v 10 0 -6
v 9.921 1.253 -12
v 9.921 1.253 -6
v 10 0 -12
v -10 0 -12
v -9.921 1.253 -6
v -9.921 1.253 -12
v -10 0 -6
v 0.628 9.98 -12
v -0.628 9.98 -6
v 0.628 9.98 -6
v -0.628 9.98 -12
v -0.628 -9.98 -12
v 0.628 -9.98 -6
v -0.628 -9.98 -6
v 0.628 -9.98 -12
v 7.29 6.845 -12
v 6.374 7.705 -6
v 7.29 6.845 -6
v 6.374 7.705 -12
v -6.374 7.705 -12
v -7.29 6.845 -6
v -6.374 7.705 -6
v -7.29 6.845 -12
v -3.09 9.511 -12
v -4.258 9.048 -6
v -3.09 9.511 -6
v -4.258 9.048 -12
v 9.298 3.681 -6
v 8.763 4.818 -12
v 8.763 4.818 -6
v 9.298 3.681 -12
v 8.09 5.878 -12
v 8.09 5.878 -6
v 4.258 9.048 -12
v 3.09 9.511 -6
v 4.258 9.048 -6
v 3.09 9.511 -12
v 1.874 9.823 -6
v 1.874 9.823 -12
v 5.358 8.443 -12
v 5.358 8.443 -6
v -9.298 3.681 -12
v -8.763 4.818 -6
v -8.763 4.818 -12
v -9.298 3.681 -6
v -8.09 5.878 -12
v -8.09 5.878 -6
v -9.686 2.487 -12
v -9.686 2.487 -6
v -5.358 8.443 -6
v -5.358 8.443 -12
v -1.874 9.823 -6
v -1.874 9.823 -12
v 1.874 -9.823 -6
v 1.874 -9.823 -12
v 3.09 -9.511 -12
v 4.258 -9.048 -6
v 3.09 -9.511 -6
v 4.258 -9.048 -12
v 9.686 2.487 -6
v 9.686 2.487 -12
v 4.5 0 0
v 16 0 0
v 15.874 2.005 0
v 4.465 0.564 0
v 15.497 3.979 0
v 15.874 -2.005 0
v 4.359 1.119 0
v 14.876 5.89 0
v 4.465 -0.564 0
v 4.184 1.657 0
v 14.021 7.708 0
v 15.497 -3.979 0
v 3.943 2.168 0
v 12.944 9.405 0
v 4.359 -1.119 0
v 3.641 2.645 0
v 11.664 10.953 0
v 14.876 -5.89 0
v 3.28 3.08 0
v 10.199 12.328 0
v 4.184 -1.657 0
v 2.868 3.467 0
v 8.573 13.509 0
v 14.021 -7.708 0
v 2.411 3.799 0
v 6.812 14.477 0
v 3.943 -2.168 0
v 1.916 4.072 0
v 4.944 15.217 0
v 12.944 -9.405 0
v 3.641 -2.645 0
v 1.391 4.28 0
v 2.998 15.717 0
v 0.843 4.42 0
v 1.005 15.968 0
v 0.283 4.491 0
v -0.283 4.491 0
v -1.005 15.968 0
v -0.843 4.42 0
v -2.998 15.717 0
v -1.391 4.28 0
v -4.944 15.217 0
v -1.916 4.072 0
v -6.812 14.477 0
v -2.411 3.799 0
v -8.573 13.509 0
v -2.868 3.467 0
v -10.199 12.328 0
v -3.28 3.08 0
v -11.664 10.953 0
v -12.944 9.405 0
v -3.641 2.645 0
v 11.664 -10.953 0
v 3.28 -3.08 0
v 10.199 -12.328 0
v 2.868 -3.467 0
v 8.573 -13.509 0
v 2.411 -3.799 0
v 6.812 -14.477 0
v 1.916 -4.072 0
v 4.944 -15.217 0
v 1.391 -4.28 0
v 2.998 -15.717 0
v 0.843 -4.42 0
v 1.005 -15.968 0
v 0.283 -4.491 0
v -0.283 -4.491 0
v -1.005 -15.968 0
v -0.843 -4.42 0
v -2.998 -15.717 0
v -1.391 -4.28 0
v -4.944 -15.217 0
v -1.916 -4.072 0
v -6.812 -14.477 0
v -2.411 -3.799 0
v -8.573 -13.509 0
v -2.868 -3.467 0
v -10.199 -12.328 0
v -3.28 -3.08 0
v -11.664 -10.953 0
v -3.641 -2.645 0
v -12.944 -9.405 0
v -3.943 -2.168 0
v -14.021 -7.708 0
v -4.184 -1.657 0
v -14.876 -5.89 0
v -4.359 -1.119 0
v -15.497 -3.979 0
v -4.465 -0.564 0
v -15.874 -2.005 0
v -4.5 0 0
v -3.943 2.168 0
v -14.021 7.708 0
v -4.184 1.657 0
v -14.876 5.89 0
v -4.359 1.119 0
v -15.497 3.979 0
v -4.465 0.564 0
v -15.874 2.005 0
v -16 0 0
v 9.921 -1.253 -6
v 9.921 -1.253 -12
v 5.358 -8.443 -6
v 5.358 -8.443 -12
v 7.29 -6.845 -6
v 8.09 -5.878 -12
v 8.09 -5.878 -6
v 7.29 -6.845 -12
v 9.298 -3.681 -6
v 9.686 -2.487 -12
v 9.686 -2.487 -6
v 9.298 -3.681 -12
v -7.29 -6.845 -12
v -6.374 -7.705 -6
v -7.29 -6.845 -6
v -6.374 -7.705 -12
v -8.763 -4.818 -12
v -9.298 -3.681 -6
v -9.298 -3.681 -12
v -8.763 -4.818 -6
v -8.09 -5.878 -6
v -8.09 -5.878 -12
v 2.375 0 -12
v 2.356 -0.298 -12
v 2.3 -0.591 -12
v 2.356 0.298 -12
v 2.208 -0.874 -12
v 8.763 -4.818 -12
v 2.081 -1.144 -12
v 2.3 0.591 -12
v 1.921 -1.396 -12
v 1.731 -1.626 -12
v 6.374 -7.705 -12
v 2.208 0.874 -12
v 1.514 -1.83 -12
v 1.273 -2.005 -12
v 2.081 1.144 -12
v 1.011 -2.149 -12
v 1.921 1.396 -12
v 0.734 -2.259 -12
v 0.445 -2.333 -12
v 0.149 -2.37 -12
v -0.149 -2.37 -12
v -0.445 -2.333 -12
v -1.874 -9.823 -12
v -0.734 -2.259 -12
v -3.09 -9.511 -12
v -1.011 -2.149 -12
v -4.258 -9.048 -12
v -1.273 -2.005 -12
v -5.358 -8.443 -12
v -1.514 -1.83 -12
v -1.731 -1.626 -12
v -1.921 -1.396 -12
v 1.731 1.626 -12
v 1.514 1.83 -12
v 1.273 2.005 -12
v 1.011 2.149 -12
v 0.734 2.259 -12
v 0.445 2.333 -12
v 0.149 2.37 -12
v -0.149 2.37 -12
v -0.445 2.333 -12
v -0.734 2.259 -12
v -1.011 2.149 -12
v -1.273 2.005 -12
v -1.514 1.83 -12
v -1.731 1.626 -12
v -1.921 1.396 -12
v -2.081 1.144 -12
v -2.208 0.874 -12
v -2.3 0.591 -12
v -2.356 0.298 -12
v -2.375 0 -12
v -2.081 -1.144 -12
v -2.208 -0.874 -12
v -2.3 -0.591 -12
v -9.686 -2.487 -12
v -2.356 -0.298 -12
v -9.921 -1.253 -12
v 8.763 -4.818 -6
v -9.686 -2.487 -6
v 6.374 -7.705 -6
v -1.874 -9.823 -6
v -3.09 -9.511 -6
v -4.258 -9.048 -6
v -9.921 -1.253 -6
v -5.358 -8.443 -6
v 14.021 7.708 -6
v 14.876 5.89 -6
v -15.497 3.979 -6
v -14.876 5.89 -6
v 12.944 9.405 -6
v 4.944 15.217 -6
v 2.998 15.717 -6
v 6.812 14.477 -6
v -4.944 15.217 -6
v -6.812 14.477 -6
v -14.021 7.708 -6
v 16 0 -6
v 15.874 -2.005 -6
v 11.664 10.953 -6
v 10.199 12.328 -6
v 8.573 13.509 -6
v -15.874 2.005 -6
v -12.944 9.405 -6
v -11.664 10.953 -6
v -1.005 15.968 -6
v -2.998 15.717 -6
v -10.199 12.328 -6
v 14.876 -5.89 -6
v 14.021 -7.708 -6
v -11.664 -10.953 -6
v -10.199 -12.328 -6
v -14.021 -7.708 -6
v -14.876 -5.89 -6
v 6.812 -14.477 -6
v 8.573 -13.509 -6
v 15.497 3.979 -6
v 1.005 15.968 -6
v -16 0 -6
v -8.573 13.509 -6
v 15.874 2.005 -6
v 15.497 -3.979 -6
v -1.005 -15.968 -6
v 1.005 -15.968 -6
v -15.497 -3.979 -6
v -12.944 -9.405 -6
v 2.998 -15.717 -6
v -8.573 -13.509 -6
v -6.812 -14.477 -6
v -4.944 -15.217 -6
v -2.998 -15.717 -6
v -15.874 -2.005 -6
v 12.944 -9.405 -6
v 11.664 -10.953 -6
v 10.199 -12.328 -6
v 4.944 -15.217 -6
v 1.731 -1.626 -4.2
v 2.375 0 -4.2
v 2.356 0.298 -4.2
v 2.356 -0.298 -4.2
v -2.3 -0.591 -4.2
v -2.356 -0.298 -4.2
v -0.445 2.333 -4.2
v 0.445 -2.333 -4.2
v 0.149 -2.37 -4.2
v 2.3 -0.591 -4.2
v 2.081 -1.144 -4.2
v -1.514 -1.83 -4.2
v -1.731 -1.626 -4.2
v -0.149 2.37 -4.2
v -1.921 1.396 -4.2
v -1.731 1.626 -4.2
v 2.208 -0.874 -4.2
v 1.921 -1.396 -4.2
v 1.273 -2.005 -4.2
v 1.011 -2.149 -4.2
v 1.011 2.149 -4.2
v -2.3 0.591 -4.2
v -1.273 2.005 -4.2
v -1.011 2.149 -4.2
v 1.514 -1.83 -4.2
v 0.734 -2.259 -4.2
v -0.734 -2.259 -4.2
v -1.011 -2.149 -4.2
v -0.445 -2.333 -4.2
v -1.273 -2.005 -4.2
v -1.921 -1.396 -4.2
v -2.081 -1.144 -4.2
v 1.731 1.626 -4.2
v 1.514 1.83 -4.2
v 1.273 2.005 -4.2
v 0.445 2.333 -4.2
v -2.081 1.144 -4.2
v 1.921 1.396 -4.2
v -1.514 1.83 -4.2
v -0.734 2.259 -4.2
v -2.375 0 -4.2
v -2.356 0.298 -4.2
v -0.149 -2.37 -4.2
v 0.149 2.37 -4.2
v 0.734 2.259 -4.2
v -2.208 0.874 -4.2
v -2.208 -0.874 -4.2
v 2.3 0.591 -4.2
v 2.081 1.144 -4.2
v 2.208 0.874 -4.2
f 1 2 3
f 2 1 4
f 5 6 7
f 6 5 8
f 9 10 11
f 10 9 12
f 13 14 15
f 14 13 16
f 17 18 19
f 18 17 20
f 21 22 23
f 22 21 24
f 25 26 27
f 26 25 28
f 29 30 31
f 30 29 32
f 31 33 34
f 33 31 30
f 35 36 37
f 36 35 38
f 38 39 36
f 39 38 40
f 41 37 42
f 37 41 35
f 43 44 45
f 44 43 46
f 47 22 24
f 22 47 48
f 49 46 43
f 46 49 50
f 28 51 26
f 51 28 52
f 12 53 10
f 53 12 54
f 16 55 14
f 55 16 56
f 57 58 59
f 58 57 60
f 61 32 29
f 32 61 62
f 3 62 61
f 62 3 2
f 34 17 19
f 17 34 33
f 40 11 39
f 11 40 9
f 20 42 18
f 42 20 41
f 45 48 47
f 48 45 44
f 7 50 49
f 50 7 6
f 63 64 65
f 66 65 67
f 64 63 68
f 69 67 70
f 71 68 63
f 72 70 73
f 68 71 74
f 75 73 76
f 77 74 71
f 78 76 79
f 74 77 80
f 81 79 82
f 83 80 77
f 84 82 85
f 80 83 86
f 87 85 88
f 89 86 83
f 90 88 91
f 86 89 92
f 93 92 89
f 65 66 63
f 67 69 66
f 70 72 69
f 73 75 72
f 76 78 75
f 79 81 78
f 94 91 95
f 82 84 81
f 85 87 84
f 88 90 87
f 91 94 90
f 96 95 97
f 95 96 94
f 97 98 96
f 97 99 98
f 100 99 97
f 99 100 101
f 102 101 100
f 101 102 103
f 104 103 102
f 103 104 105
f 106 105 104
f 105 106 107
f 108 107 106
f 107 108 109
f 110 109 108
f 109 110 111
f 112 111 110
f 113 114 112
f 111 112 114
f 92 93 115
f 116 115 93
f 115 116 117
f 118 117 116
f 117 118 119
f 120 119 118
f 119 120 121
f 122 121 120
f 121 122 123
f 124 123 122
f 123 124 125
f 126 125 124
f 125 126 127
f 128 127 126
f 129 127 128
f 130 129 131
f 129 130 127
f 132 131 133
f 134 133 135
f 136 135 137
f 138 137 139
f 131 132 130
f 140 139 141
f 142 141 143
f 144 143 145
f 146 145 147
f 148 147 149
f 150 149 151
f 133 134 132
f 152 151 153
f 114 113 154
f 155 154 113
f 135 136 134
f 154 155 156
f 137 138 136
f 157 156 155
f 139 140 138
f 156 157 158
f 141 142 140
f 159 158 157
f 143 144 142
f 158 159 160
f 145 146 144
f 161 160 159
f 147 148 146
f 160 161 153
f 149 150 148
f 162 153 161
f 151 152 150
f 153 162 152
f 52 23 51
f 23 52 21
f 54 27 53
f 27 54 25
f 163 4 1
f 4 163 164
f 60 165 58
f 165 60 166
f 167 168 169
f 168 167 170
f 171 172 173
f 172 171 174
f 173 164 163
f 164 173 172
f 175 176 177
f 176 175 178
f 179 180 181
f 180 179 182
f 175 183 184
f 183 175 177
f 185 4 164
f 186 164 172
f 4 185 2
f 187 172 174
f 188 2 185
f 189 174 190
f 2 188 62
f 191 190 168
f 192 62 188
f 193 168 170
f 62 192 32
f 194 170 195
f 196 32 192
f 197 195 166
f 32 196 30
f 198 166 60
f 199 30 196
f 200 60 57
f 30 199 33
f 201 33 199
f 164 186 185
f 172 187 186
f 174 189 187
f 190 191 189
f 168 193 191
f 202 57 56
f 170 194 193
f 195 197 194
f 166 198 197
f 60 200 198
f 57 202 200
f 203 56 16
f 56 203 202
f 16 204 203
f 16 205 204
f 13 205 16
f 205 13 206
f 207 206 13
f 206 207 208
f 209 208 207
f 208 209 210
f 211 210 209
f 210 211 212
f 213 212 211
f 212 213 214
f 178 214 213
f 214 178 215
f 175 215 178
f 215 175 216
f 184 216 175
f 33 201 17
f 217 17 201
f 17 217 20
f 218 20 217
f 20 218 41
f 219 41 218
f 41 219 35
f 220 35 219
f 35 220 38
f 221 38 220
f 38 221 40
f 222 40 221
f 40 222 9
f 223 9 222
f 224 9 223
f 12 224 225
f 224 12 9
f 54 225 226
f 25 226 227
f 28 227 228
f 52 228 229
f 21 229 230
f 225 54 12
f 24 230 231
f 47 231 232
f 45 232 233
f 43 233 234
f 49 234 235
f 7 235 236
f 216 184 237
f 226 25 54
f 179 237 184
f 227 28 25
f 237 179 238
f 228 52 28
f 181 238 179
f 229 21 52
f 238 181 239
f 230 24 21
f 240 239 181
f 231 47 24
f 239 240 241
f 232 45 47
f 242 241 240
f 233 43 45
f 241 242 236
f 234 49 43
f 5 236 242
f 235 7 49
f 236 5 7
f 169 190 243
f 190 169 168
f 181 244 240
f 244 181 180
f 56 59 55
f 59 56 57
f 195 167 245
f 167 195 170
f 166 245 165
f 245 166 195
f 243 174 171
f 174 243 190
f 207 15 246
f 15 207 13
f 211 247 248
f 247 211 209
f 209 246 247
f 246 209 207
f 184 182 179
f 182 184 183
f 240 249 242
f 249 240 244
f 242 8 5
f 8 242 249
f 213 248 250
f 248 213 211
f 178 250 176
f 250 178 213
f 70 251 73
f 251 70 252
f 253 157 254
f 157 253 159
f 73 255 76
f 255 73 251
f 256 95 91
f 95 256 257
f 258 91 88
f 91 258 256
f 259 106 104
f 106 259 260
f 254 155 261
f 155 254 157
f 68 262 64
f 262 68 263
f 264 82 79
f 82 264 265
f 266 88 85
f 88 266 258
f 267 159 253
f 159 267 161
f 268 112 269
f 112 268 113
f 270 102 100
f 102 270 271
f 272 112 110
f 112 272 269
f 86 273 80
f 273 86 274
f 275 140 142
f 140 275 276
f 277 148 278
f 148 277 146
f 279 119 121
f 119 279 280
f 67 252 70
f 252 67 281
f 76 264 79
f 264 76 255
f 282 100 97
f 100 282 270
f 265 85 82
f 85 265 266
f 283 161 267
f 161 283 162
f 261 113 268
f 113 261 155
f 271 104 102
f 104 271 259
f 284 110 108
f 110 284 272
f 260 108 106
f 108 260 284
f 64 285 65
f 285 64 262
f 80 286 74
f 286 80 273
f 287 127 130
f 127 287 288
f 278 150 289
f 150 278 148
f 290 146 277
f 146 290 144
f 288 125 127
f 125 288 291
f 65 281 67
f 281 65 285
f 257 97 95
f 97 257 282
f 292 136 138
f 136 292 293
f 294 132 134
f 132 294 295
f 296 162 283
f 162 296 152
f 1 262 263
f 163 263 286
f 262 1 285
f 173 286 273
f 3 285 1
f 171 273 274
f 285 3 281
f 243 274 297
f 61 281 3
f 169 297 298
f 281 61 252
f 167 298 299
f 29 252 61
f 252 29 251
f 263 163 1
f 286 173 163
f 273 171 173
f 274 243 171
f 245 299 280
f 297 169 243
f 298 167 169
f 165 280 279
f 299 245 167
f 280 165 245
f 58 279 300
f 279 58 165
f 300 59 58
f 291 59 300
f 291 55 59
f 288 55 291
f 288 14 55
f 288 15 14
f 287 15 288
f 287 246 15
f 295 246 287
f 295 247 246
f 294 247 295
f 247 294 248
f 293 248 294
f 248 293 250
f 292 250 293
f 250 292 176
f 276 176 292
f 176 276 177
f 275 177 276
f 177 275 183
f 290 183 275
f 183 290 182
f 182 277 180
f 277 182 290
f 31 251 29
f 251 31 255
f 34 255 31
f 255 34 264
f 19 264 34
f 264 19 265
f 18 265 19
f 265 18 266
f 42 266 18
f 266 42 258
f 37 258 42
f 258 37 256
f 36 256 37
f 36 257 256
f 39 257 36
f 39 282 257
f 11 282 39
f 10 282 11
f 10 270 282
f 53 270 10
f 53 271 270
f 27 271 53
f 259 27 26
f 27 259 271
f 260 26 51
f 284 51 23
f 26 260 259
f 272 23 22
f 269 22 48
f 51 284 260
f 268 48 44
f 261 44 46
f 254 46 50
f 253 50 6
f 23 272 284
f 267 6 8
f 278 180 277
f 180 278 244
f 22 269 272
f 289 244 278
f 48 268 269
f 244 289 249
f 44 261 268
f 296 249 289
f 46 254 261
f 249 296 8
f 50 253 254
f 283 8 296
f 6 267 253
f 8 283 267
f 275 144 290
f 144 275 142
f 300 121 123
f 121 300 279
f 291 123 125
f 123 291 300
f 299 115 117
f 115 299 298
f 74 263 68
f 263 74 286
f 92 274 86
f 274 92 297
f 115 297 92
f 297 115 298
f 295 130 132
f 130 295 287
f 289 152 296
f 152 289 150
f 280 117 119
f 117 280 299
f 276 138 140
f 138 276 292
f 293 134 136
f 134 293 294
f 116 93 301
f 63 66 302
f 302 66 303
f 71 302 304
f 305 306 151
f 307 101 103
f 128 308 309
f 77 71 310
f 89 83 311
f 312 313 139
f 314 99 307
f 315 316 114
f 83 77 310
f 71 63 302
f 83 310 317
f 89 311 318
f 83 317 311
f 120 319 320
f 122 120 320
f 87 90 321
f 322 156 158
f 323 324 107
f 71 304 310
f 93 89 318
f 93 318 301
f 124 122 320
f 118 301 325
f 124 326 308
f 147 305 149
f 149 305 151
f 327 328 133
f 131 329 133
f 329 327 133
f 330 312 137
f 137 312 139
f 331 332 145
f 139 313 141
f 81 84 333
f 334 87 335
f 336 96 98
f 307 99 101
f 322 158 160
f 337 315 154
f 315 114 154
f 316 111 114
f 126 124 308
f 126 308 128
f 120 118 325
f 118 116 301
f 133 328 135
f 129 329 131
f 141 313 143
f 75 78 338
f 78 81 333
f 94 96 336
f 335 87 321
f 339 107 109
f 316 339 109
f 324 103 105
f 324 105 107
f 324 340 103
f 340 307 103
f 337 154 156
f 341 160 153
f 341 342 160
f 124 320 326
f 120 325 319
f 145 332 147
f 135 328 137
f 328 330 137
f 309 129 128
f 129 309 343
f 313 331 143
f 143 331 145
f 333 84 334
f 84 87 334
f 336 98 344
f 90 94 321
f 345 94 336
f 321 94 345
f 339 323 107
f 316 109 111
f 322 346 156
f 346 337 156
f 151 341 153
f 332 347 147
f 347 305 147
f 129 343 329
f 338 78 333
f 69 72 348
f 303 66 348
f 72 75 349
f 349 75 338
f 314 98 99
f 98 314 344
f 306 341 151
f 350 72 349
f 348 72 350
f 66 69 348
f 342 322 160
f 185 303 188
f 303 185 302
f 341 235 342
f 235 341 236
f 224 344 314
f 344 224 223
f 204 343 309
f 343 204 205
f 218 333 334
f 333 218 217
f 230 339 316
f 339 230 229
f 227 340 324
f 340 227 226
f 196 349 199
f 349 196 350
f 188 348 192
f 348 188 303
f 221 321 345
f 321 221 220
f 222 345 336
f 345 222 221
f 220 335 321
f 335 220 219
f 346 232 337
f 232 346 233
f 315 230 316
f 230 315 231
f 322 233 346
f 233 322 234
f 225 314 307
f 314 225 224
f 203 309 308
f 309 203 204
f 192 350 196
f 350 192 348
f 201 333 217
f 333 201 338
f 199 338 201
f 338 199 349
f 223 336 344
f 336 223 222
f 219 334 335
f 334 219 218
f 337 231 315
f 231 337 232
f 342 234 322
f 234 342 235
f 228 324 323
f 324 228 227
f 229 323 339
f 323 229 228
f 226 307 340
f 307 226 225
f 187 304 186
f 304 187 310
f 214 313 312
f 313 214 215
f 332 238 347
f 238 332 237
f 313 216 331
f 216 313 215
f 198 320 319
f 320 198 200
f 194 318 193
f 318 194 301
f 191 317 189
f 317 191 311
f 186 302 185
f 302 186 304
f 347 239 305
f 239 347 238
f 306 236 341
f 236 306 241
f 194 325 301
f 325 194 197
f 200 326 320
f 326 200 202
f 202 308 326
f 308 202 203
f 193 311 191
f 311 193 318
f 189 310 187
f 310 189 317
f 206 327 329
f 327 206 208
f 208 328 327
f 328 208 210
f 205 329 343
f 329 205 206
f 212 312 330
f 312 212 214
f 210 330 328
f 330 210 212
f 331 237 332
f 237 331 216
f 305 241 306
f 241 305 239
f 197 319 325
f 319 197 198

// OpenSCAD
$fn = 50;


difference() {
	union() {
		translate(v = [0, 0, -12.0000000000]) {
			cylinder(h = 12, r = 10.0000000000);
		}
		translate(v = [0, 0, -6.0000000000]) {
			cylinder(h = 6, r = 16.0000000000);
		}
	}
	union() {
		translate(v = [0, 0, 0]) {
			rotate(a = [0, 0, 0]) {
				difference() {
					union() {
						#translate(v = [0, 0, -12.0000000000]) {
							cylinder(h = 12, r = 2.2500000000);
						}
						#translate(v = [0, 0, -4.2000000000]) {
							cylinder(h = 4.2000000000, r = 10.0000000000, r1 = 2.3750000000, r2 = 4.5000000000);
						}
						#translate(v = [0, 0, -12.0000000000]) {
							cylinder(h = 12, r = 2.3750000000);
						}
						#translate(v = [0, 0, -12.0000000000]) {
							cylinder(h = 12, r = 2.2500000000);
						}
					}
					union();
				}
			}
		}
	}
}
